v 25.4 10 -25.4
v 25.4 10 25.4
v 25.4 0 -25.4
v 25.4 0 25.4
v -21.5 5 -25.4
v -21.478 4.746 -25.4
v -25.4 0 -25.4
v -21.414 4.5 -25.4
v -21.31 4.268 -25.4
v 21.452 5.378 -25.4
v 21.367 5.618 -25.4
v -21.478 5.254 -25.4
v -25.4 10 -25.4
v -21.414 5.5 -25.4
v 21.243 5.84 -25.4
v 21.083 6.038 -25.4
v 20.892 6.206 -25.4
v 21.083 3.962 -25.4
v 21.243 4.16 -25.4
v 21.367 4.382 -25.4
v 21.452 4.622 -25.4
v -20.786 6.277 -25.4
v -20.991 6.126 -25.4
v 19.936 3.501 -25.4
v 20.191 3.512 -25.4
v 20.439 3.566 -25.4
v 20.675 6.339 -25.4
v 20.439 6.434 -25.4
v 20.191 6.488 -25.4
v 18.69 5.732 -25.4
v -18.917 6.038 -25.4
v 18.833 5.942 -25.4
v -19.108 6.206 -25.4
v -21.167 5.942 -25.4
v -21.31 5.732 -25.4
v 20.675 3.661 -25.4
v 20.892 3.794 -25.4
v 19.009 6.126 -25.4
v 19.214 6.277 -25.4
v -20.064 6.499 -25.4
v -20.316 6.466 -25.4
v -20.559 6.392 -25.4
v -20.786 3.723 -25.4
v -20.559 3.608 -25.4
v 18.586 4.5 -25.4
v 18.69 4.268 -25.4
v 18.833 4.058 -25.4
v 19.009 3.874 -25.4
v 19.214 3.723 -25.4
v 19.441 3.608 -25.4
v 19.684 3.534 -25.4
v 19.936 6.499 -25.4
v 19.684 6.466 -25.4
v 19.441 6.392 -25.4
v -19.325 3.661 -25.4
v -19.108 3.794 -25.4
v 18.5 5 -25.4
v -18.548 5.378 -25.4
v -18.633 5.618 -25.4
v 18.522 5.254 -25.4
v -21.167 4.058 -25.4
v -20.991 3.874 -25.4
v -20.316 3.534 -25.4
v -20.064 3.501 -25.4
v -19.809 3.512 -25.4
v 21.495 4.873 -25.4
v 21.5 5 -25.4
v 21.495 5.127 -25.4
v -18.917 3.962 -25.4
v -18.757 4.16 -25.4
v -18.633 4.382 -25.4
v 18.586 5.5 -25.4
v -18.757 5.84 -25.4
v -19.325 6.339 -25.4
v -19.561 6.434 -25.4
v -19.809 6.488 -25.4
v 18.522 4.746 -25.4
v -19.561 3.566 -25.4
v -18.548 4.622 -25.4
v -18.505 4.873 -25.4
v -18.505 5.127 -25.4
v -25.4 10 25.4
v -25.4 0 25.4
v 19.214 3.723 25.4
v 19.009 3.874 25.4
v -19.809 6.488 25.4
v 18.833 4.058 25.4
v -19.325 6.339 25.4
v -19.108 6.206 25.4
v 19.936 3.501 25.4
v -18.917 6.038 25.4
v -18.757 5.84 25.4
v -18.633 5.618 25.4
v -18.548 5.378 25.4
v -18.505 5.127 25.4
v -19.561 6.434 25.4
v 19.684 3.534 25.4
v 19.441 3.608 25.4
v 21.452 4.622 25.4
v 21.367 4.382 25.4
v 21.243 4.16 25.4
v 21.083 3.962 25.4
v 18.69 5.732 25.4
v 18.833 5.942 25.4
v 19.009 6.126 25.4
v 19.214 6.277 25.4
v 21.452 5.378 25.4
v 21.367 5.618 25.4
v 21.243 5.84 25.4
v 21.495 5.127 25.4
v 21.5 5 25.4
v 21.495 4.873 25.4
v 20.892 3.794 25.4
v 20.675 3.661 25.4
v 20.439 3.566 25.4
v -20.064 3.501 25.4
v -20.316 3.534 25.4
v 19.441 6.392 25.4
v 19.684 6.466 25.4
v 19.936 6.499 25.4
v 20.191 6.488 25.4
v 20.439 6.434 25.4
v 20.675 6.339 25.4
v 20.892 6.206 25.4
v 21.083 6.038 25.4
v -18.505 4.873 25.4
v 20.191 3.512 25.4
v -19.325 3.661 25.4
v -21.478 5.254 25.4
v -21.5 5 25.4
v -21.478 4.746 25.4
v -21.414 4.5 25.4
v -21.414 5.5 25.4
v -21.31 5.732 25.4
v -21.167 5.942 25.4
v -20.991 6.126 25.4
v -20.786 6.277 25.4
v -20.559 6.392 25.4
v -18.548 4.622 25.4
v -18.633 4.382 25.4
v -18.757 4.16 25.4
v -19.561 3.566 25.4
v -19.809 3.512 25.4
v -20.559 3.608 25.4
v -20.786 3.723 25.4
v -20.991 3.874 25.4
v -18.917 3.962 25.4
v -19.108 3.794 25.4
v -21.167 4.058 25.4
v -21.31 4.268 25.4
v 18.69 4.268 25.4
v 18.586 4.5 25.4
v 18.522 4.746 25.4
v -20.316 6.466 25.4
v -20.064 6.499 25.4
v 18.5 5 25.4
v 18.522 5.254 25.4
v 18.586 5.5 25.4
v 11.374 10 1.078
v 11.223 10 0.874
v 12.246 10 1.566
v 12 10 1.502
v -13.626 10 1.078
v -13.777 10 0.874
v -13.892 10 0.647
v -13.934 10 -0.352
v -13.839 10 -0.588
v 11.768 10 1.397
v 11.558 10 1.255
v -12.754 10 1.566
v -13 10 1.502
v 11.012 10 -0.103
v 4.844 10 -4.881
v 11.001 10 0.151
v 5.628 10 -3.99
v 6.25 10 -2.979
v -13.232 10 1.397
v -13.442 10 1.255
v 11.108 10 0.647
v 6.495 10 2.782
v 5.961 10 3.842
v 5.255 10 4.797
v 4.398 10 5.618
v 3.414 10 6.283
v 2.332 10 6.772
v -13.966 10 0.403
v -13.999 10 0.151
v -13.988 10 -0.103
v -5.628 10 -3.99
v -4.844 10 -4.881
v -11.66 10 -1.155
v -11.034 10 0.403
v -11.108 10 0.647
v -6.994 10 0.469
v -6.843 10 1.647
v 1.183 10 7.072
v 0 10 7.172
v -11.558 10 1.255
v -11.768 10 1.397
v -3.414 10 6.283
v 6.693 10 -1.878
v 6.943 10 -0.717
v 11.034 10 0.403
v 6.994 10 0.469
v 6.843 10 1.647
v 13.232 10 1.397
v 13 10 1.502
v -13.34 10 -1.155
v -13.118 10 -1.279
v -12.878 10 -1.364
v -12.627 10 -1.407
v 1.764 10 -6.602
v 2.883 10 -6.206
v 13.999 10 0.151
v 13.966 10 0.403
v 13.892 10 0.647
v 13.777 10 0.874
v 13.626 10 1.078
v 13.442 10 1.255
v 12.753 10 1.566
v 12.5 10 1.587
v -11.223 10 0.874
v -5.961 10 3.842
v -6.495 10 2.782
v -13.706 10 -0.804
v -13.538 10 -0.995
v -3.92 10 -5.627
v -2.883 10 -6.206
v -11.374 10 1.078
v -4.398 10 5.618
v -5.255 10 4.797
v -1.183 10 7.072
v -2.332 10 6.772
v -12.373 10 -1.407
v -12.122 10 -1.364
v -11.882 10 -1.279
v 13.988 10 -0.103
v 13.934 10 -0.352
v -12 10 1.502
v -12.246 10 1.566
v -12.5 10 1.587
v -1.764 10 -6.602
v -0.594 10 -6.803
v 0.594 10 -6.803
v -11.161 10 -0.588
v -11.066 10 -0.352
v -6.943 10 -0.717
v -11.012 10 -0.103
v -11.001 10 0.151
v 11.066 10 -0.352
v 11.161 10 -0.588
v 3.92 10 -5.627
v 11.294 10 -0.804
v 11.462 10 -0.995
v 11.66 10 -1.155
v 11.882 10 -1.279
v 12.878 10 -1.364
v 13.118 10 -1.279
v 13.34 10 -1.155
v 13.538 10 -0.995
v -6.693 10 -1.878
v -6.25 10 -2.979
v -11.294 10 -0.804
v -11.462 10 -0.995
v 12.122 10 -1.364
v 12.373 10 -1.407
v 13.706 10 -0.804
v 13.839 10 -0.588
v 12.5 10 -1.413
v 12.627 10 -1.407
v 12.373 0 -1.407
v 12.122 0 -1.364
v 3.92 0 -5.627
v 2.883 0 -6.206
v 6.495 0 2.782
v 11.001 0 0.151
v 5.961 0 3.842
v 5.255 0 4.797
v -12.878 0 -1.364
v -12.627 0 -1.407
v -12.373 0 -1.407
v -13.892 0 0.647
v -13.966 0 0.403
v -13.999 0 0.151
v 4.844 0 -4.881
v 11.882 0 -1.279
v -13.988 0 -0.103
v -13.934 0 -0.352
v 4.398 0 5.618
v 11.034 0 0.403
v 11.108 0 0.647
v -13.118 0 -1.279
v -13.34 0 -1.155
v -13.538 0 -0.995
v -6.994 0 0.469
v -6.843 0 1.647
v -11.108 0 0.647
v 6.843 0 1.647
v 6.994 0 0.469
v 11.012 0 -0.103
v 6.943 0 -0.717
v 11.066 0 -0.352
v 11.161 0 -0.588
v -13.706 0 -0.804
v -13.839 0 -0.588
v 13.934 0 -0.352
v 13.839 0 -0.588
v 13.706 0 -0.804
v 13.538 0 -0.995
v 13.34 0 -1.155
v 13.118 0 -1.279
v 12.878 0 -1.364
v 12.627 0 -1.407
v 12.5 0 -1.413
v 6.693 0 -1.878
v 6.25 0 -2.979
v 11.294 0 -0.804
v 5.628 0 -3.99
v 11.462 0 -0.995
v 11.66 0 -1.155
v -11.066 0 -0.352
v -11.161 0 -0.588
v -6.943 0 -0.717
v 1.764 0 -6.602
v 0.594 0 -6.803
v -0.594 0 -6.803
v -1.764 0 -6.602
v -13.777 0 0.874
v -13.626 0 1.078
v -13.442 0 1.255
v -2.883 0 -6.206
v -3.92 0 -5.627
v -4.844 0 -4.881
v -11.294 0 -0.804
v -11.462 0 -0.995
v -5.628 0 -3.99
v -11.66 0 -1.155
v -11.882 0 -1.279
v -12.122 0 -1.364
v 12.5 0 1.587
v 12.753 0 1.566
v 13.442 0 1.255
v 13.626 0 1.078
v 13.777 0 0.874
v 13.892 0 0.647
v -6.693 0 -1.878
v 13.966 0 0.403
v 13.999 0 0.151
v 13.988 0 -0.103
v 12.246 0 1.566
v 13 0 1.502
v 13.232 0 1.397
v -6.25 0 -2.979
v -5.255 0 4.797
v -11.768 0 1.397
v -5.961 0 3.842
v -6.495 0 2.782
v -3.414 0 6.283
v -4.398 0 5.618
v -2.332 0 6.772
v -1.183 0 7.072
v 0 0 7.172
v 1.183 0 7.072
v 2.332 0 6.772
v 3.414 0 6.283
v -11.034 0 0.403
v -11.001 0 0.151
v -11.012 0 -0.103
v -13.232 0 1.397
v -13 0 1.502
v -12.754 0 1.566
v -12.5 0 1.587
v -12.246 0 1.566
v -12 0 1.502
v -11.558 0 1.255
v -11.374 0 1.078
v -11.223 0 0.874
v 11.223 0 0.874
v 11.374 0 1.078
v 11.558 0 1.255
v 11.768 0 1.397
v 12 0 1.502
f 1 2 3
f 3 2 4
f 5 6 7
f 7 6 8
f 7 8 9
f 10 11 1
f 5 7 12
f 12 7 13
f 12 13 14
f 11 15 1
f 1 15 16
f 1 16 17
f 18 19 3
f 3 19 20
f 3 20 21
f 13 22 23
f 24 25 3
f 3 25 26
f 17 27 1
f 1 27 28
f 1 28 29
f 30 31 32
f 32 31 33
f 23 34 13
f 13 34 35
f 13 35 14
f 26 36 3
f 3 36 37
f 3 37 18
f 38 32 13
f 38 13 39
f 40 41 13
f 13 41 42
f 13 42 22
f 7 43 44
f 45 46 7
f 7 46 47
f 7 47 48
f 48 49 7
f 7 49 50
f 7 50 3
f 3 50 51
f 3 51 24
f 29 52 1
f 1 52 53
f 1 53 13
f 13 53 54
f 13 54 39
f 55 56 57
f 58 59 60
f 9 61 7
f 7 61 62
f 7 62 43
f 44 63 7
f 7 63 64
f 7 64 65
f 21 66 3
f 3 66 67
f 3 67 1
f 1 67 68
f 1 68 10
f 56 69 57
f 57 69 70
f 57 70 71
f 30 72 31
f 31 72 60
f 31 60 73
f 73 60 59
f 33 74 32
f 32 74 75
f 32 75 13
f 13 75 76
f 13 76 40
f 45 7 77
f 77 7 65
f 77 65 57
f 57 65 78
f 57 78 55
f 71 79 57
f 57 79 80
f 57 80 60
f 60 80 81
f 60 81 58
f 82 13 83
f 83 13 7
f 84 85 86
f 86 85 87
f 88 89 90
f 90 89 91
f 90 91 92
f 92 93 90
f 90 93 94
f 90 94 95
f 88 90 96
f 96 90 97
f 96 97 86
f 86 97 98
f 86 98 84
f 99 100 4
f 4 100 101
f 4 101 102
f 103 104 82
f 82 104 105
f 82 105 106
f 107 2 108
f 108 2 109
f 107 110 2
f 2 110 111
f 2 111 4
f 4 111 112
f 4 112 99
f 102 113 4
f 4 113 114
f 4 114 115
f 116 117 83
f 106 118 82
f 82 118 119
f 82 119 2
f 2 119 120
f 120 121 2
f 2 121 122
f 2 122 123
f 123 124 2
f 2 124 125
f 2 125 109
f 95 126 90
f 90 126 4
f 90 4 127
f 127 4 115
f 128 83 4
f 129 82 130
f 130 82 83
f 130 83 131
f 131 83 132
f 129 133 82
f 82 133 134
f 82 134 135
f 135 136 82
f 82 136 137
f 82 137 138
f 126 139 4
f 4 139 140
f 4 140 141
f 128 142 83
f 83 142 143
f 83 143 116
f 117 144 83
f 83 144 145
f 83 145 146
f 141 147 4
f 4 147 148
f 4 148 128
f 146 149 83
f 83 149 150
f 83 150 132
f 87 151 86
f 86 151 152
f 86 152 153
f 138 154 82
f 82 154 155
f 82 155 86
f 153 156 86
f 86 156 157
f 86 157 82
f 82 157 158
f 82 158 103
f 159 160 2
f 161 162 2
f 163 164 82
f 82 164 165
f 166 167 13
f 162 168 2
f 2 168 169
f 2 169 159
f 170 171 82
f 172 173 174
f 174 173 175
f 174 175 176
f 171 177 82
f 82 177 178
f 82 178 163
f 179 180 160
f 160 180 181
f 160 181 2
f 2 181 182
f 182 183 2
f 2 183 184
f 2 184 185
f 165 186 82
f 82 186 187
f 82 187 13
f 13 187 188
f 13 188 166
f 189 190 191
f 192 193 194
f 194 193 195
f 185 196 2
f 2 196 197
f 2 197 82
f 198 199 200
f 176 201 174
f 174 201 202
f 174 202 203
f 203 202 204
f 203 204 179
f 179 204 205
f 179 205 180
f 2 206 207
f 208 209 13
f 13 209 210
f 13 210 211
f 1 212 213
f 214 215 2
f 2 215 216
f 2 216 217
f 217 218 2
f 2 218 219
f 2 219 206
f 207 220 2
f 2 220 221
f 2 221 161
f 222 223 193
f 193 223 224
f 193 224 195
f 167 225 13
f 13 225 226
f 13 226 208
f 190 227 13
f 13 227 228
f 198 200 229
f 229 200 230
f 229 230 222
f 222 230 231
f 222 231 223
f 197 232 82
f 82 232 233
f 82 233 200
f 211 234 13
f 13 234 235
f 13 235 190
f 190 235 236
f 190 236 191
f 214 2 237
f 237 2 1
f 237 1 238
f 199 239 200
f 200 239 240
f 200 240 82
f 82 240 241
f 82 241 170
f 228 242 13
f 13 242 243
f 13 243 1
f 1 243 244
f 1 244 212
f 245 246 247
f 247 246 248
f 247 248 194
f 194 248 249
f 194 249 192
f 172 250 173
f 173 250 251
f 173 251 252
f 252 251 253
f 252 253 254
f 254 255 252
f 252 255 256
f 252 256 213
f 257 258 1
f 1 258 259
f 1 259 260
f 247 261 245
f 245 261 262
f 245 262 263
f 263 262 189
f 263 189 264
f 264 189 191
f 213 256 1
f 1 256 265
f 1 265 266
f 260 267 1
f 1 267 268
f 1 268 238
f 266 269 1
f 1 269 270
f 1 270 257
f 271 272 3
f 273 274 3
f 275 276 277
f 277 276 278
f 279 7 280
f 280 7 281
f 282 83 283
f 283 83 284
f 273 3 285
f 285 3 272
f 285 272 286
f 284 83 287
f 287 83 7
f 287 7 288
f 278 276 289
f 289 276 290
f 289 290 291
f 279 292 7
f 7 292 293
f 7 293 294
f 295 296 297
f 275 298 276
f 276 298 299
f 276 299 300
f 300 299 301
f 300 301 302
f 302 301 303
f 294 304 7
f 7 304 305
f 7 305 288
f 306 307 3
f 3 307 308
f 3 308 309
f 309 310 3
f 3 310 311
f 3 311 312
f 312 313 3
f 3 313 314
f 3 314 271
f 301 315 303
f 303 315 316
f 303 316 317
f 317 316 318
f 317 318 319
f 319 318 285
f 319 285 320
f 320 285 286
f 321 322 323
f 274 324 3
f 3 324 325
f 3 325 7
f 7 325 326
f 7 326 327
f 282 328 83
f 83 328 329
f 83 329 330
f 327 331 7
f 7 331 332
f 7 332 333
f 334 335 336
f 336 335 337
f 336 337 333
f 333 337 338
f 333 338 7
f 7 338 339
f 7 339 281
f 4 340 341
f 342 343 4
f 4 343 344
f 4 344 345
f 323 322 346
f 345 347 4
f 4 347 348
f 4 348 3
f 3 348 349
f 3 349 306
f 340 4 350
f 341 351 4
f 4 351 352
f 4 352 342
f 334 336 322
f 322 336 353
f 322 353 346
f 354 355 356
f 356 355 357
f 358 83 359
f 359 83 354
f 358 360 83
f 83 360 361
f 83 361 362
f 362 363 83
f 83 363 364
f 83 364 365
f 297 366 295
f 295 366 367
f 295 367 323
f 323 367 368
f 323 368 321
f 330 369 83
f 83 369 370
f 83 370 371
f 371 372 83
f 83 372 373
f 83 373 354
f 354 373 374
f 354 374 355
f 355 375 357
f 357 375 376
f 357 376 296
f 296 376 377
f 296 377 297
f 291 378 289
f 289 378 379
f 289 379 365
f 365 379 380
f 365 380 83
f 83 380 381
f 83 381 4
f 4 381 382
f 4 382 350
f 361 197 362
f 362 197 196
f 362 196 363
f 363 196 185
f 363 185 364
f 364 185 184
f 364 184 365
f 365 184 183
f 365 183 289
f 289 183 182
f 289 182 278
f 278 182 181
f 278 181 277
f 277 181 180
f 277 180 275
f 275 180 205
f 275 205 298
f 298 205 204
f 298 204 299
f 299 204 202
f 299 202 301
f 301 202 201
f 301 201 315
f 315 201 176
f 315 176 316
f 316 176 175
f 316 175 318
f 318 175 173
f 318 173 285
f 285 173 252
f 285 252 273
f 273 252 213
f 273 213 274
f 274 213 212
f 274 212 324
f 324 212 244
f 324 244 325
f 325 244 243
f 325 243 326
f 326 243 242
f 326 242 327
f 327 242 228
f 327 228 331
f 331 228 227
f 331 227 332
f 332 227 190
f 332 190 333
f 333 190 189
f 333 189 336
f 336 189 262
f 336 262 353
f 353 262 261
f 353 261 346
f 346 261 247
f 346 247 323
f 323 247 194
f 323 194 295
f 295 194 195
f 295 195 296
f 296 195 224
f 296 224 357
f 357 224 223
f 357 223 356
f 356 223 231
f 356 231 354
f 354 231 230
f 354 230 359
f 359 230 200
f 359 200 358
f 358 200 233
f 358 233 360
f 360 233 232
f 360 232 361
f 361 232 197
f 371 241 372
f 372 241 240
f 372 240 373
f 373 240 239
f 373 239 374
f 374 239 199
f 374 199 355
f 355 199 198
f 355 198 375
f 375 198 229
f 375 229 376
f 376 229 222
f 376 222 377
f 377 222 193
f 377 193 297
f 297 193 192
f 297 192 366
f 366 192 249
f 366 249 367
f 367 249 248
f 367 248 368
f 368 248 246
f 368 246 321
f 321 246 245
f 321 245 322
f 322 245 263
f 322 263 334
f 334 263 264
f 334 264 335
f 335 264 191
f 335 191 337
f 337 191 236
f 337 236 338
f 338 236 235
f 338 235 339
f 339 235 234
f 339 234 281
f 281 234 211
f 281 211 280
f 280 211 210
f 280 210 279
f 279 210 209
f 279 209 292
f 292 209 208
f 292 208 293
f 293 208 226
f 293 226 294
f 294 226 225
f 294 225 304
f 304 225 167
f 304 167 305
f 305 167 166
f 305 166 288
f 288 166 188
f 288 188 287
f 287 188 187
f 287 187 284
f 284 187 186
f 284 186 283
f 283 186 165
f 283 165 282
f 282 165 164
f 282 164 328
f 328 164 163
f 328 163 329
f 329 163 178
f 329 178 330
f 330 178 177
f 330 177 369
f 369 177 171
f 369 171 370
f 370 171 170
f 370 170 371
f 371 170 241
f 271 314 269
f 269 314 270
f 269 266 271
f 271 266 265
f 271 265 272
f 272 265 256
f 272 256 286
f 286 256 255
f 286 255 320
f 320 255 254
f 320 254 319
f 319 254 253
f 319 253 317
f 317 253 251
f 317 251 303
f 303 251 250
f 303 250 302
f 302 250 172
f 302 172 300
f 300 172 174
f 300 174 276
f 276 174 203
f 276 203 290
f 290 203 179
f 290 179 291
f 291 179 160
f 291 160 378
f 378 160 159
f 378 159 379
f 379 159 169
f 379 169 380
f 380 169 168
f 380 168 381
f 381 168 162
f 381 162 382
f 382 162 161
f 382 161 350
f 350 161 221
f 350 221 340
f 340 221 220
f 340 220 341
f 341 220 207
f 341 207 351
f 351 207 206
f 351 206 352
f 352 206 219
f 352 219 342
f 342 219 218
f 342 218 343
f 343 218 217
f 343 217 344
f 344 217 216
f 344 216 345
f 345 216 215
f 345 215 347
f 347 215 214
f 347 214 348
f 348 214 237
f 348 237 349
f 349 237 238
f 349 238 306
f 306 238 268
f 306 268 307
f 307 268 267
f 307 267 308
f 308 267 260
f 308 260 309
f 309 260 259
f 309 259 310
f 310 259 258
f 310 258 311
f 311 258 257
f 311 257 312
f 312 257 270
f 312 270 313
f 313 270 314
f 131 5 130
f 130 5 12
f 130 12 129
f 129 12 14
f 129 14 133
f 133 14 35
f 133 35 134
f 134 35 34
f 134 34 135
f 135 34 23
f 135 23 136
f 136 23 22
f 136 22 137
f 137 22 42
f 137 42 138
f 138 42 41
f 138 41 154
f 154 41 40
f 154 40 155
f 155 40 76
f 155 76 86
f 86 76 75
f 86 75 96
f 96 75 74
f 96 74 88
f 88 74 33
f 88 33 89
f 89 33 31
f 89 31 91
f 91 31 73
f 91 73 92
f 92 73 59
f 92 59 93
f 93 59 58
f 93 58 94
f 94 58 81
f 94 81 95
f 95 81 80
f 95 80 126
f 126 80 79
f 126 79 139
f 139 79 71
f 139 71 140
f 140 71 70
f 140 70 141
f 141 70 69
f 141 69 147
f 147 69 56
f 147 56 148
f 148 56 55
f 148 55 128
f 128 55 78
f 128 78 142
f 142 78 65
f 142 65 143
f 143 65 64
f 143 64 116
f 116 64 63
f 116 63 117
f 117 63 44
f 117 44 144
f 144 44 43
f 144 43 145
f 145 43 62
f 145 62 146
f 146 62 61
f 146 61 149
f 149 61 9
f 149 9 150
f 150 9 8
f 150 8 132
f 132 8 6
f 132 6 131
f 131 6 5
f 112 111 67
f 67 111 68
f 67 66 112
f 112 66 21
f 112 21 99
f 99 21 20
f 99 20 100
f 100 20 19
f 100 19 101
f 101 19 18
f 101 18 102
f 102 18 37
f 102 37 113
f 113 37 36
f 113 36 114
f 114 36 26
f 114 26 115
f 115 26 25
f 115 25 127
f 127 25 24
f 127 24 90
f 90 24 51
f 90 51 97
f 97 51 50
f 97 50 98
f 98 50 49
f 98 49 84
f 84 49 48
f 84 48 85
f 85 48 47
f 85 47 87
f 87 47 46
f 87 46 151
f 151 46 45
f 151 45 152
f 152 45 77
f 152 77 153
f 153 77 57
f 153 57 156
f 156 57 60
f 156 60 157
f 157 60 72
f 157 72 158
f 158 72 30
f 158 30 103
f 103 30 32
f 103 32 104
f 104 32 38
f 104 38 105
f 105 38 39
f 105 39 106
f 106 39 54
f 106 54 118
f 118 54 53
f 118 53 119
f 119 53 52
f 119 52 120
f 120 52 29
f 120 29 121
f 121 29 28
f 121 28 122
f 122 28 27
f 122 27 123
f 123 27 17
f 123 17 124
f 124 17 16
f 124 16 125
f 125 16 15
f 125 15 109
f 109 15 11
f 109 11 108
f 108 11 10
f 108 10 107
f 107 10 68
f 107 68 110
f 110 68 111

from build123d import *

# Parameters (mm, degrees)
SKETCH1_W           = 50.8
SKETCH1_H           = 50.8
BOSS_EXTRUDE1_DEPTH = 10
SKETCH2_R           = 7
SKETCH2_R_2         = 1.5
CUT_EXTRUDE1_DEPTH  = 38.286995052
SKETCH3_R           = 1.5
CUT_EXTRUDE2_DEPTH  = 58.669749436


with BuildPart() as part:
    # Sketch1 → Boss-Extrude1 (new body)
    with BuildSketch(Plane(origin=(0, 0, 0), x_dir=(1, 0, 0), z_dir=(0, 1, 0))):
        Rectangle(SKETCH1_W, SKETCH1_H)
    extrude(amount=BOSS_EXTRUDE1_DEPTH)

    # Sketch2 → Cut-Extrude1 (cut, through all)
    with BuildSketch(Plane(origin=(0, 10, 0), x_dir=(1, 0, 0), z_dir=(0, 1, 0))):
        with Locations(Location((0, -0.172221673, 0), (0, 0, 270))):
            Circle(SKETCH2_R)
        with Locations(Location((-12.5, -0.087466912, 0), (0, 0, 270))):
            Circle(SKETCH2_R_2)
        with Locations(Location((12.5, -0.087466912, 0), (0, 0, 90))):
            Circle(SKETCH2_R_2)
    extrude(amount=-CUT_EXTRUDE1_DEPTH, mode=Mode.SUBTRACT)

    # Sketch3 → Cut-Extrude2 (cut, through all)
    with BuildSketch(Plane(origin=(0, 0, -25.4), x_dir=(-1, 0, 0), z_dir=(0, 0, -1))):
        with Locations((20, 5)):
            Circle(SKETCH3_R)
        with Locations(Location((-20, 5, 0), (0, 0, 180))):
            Circle(SKETCH3_R)
    extrude(amount=-CUT_EXTRUDE2_DEPTH, mode=Mode.SUBTRACT)


solid = part.part
